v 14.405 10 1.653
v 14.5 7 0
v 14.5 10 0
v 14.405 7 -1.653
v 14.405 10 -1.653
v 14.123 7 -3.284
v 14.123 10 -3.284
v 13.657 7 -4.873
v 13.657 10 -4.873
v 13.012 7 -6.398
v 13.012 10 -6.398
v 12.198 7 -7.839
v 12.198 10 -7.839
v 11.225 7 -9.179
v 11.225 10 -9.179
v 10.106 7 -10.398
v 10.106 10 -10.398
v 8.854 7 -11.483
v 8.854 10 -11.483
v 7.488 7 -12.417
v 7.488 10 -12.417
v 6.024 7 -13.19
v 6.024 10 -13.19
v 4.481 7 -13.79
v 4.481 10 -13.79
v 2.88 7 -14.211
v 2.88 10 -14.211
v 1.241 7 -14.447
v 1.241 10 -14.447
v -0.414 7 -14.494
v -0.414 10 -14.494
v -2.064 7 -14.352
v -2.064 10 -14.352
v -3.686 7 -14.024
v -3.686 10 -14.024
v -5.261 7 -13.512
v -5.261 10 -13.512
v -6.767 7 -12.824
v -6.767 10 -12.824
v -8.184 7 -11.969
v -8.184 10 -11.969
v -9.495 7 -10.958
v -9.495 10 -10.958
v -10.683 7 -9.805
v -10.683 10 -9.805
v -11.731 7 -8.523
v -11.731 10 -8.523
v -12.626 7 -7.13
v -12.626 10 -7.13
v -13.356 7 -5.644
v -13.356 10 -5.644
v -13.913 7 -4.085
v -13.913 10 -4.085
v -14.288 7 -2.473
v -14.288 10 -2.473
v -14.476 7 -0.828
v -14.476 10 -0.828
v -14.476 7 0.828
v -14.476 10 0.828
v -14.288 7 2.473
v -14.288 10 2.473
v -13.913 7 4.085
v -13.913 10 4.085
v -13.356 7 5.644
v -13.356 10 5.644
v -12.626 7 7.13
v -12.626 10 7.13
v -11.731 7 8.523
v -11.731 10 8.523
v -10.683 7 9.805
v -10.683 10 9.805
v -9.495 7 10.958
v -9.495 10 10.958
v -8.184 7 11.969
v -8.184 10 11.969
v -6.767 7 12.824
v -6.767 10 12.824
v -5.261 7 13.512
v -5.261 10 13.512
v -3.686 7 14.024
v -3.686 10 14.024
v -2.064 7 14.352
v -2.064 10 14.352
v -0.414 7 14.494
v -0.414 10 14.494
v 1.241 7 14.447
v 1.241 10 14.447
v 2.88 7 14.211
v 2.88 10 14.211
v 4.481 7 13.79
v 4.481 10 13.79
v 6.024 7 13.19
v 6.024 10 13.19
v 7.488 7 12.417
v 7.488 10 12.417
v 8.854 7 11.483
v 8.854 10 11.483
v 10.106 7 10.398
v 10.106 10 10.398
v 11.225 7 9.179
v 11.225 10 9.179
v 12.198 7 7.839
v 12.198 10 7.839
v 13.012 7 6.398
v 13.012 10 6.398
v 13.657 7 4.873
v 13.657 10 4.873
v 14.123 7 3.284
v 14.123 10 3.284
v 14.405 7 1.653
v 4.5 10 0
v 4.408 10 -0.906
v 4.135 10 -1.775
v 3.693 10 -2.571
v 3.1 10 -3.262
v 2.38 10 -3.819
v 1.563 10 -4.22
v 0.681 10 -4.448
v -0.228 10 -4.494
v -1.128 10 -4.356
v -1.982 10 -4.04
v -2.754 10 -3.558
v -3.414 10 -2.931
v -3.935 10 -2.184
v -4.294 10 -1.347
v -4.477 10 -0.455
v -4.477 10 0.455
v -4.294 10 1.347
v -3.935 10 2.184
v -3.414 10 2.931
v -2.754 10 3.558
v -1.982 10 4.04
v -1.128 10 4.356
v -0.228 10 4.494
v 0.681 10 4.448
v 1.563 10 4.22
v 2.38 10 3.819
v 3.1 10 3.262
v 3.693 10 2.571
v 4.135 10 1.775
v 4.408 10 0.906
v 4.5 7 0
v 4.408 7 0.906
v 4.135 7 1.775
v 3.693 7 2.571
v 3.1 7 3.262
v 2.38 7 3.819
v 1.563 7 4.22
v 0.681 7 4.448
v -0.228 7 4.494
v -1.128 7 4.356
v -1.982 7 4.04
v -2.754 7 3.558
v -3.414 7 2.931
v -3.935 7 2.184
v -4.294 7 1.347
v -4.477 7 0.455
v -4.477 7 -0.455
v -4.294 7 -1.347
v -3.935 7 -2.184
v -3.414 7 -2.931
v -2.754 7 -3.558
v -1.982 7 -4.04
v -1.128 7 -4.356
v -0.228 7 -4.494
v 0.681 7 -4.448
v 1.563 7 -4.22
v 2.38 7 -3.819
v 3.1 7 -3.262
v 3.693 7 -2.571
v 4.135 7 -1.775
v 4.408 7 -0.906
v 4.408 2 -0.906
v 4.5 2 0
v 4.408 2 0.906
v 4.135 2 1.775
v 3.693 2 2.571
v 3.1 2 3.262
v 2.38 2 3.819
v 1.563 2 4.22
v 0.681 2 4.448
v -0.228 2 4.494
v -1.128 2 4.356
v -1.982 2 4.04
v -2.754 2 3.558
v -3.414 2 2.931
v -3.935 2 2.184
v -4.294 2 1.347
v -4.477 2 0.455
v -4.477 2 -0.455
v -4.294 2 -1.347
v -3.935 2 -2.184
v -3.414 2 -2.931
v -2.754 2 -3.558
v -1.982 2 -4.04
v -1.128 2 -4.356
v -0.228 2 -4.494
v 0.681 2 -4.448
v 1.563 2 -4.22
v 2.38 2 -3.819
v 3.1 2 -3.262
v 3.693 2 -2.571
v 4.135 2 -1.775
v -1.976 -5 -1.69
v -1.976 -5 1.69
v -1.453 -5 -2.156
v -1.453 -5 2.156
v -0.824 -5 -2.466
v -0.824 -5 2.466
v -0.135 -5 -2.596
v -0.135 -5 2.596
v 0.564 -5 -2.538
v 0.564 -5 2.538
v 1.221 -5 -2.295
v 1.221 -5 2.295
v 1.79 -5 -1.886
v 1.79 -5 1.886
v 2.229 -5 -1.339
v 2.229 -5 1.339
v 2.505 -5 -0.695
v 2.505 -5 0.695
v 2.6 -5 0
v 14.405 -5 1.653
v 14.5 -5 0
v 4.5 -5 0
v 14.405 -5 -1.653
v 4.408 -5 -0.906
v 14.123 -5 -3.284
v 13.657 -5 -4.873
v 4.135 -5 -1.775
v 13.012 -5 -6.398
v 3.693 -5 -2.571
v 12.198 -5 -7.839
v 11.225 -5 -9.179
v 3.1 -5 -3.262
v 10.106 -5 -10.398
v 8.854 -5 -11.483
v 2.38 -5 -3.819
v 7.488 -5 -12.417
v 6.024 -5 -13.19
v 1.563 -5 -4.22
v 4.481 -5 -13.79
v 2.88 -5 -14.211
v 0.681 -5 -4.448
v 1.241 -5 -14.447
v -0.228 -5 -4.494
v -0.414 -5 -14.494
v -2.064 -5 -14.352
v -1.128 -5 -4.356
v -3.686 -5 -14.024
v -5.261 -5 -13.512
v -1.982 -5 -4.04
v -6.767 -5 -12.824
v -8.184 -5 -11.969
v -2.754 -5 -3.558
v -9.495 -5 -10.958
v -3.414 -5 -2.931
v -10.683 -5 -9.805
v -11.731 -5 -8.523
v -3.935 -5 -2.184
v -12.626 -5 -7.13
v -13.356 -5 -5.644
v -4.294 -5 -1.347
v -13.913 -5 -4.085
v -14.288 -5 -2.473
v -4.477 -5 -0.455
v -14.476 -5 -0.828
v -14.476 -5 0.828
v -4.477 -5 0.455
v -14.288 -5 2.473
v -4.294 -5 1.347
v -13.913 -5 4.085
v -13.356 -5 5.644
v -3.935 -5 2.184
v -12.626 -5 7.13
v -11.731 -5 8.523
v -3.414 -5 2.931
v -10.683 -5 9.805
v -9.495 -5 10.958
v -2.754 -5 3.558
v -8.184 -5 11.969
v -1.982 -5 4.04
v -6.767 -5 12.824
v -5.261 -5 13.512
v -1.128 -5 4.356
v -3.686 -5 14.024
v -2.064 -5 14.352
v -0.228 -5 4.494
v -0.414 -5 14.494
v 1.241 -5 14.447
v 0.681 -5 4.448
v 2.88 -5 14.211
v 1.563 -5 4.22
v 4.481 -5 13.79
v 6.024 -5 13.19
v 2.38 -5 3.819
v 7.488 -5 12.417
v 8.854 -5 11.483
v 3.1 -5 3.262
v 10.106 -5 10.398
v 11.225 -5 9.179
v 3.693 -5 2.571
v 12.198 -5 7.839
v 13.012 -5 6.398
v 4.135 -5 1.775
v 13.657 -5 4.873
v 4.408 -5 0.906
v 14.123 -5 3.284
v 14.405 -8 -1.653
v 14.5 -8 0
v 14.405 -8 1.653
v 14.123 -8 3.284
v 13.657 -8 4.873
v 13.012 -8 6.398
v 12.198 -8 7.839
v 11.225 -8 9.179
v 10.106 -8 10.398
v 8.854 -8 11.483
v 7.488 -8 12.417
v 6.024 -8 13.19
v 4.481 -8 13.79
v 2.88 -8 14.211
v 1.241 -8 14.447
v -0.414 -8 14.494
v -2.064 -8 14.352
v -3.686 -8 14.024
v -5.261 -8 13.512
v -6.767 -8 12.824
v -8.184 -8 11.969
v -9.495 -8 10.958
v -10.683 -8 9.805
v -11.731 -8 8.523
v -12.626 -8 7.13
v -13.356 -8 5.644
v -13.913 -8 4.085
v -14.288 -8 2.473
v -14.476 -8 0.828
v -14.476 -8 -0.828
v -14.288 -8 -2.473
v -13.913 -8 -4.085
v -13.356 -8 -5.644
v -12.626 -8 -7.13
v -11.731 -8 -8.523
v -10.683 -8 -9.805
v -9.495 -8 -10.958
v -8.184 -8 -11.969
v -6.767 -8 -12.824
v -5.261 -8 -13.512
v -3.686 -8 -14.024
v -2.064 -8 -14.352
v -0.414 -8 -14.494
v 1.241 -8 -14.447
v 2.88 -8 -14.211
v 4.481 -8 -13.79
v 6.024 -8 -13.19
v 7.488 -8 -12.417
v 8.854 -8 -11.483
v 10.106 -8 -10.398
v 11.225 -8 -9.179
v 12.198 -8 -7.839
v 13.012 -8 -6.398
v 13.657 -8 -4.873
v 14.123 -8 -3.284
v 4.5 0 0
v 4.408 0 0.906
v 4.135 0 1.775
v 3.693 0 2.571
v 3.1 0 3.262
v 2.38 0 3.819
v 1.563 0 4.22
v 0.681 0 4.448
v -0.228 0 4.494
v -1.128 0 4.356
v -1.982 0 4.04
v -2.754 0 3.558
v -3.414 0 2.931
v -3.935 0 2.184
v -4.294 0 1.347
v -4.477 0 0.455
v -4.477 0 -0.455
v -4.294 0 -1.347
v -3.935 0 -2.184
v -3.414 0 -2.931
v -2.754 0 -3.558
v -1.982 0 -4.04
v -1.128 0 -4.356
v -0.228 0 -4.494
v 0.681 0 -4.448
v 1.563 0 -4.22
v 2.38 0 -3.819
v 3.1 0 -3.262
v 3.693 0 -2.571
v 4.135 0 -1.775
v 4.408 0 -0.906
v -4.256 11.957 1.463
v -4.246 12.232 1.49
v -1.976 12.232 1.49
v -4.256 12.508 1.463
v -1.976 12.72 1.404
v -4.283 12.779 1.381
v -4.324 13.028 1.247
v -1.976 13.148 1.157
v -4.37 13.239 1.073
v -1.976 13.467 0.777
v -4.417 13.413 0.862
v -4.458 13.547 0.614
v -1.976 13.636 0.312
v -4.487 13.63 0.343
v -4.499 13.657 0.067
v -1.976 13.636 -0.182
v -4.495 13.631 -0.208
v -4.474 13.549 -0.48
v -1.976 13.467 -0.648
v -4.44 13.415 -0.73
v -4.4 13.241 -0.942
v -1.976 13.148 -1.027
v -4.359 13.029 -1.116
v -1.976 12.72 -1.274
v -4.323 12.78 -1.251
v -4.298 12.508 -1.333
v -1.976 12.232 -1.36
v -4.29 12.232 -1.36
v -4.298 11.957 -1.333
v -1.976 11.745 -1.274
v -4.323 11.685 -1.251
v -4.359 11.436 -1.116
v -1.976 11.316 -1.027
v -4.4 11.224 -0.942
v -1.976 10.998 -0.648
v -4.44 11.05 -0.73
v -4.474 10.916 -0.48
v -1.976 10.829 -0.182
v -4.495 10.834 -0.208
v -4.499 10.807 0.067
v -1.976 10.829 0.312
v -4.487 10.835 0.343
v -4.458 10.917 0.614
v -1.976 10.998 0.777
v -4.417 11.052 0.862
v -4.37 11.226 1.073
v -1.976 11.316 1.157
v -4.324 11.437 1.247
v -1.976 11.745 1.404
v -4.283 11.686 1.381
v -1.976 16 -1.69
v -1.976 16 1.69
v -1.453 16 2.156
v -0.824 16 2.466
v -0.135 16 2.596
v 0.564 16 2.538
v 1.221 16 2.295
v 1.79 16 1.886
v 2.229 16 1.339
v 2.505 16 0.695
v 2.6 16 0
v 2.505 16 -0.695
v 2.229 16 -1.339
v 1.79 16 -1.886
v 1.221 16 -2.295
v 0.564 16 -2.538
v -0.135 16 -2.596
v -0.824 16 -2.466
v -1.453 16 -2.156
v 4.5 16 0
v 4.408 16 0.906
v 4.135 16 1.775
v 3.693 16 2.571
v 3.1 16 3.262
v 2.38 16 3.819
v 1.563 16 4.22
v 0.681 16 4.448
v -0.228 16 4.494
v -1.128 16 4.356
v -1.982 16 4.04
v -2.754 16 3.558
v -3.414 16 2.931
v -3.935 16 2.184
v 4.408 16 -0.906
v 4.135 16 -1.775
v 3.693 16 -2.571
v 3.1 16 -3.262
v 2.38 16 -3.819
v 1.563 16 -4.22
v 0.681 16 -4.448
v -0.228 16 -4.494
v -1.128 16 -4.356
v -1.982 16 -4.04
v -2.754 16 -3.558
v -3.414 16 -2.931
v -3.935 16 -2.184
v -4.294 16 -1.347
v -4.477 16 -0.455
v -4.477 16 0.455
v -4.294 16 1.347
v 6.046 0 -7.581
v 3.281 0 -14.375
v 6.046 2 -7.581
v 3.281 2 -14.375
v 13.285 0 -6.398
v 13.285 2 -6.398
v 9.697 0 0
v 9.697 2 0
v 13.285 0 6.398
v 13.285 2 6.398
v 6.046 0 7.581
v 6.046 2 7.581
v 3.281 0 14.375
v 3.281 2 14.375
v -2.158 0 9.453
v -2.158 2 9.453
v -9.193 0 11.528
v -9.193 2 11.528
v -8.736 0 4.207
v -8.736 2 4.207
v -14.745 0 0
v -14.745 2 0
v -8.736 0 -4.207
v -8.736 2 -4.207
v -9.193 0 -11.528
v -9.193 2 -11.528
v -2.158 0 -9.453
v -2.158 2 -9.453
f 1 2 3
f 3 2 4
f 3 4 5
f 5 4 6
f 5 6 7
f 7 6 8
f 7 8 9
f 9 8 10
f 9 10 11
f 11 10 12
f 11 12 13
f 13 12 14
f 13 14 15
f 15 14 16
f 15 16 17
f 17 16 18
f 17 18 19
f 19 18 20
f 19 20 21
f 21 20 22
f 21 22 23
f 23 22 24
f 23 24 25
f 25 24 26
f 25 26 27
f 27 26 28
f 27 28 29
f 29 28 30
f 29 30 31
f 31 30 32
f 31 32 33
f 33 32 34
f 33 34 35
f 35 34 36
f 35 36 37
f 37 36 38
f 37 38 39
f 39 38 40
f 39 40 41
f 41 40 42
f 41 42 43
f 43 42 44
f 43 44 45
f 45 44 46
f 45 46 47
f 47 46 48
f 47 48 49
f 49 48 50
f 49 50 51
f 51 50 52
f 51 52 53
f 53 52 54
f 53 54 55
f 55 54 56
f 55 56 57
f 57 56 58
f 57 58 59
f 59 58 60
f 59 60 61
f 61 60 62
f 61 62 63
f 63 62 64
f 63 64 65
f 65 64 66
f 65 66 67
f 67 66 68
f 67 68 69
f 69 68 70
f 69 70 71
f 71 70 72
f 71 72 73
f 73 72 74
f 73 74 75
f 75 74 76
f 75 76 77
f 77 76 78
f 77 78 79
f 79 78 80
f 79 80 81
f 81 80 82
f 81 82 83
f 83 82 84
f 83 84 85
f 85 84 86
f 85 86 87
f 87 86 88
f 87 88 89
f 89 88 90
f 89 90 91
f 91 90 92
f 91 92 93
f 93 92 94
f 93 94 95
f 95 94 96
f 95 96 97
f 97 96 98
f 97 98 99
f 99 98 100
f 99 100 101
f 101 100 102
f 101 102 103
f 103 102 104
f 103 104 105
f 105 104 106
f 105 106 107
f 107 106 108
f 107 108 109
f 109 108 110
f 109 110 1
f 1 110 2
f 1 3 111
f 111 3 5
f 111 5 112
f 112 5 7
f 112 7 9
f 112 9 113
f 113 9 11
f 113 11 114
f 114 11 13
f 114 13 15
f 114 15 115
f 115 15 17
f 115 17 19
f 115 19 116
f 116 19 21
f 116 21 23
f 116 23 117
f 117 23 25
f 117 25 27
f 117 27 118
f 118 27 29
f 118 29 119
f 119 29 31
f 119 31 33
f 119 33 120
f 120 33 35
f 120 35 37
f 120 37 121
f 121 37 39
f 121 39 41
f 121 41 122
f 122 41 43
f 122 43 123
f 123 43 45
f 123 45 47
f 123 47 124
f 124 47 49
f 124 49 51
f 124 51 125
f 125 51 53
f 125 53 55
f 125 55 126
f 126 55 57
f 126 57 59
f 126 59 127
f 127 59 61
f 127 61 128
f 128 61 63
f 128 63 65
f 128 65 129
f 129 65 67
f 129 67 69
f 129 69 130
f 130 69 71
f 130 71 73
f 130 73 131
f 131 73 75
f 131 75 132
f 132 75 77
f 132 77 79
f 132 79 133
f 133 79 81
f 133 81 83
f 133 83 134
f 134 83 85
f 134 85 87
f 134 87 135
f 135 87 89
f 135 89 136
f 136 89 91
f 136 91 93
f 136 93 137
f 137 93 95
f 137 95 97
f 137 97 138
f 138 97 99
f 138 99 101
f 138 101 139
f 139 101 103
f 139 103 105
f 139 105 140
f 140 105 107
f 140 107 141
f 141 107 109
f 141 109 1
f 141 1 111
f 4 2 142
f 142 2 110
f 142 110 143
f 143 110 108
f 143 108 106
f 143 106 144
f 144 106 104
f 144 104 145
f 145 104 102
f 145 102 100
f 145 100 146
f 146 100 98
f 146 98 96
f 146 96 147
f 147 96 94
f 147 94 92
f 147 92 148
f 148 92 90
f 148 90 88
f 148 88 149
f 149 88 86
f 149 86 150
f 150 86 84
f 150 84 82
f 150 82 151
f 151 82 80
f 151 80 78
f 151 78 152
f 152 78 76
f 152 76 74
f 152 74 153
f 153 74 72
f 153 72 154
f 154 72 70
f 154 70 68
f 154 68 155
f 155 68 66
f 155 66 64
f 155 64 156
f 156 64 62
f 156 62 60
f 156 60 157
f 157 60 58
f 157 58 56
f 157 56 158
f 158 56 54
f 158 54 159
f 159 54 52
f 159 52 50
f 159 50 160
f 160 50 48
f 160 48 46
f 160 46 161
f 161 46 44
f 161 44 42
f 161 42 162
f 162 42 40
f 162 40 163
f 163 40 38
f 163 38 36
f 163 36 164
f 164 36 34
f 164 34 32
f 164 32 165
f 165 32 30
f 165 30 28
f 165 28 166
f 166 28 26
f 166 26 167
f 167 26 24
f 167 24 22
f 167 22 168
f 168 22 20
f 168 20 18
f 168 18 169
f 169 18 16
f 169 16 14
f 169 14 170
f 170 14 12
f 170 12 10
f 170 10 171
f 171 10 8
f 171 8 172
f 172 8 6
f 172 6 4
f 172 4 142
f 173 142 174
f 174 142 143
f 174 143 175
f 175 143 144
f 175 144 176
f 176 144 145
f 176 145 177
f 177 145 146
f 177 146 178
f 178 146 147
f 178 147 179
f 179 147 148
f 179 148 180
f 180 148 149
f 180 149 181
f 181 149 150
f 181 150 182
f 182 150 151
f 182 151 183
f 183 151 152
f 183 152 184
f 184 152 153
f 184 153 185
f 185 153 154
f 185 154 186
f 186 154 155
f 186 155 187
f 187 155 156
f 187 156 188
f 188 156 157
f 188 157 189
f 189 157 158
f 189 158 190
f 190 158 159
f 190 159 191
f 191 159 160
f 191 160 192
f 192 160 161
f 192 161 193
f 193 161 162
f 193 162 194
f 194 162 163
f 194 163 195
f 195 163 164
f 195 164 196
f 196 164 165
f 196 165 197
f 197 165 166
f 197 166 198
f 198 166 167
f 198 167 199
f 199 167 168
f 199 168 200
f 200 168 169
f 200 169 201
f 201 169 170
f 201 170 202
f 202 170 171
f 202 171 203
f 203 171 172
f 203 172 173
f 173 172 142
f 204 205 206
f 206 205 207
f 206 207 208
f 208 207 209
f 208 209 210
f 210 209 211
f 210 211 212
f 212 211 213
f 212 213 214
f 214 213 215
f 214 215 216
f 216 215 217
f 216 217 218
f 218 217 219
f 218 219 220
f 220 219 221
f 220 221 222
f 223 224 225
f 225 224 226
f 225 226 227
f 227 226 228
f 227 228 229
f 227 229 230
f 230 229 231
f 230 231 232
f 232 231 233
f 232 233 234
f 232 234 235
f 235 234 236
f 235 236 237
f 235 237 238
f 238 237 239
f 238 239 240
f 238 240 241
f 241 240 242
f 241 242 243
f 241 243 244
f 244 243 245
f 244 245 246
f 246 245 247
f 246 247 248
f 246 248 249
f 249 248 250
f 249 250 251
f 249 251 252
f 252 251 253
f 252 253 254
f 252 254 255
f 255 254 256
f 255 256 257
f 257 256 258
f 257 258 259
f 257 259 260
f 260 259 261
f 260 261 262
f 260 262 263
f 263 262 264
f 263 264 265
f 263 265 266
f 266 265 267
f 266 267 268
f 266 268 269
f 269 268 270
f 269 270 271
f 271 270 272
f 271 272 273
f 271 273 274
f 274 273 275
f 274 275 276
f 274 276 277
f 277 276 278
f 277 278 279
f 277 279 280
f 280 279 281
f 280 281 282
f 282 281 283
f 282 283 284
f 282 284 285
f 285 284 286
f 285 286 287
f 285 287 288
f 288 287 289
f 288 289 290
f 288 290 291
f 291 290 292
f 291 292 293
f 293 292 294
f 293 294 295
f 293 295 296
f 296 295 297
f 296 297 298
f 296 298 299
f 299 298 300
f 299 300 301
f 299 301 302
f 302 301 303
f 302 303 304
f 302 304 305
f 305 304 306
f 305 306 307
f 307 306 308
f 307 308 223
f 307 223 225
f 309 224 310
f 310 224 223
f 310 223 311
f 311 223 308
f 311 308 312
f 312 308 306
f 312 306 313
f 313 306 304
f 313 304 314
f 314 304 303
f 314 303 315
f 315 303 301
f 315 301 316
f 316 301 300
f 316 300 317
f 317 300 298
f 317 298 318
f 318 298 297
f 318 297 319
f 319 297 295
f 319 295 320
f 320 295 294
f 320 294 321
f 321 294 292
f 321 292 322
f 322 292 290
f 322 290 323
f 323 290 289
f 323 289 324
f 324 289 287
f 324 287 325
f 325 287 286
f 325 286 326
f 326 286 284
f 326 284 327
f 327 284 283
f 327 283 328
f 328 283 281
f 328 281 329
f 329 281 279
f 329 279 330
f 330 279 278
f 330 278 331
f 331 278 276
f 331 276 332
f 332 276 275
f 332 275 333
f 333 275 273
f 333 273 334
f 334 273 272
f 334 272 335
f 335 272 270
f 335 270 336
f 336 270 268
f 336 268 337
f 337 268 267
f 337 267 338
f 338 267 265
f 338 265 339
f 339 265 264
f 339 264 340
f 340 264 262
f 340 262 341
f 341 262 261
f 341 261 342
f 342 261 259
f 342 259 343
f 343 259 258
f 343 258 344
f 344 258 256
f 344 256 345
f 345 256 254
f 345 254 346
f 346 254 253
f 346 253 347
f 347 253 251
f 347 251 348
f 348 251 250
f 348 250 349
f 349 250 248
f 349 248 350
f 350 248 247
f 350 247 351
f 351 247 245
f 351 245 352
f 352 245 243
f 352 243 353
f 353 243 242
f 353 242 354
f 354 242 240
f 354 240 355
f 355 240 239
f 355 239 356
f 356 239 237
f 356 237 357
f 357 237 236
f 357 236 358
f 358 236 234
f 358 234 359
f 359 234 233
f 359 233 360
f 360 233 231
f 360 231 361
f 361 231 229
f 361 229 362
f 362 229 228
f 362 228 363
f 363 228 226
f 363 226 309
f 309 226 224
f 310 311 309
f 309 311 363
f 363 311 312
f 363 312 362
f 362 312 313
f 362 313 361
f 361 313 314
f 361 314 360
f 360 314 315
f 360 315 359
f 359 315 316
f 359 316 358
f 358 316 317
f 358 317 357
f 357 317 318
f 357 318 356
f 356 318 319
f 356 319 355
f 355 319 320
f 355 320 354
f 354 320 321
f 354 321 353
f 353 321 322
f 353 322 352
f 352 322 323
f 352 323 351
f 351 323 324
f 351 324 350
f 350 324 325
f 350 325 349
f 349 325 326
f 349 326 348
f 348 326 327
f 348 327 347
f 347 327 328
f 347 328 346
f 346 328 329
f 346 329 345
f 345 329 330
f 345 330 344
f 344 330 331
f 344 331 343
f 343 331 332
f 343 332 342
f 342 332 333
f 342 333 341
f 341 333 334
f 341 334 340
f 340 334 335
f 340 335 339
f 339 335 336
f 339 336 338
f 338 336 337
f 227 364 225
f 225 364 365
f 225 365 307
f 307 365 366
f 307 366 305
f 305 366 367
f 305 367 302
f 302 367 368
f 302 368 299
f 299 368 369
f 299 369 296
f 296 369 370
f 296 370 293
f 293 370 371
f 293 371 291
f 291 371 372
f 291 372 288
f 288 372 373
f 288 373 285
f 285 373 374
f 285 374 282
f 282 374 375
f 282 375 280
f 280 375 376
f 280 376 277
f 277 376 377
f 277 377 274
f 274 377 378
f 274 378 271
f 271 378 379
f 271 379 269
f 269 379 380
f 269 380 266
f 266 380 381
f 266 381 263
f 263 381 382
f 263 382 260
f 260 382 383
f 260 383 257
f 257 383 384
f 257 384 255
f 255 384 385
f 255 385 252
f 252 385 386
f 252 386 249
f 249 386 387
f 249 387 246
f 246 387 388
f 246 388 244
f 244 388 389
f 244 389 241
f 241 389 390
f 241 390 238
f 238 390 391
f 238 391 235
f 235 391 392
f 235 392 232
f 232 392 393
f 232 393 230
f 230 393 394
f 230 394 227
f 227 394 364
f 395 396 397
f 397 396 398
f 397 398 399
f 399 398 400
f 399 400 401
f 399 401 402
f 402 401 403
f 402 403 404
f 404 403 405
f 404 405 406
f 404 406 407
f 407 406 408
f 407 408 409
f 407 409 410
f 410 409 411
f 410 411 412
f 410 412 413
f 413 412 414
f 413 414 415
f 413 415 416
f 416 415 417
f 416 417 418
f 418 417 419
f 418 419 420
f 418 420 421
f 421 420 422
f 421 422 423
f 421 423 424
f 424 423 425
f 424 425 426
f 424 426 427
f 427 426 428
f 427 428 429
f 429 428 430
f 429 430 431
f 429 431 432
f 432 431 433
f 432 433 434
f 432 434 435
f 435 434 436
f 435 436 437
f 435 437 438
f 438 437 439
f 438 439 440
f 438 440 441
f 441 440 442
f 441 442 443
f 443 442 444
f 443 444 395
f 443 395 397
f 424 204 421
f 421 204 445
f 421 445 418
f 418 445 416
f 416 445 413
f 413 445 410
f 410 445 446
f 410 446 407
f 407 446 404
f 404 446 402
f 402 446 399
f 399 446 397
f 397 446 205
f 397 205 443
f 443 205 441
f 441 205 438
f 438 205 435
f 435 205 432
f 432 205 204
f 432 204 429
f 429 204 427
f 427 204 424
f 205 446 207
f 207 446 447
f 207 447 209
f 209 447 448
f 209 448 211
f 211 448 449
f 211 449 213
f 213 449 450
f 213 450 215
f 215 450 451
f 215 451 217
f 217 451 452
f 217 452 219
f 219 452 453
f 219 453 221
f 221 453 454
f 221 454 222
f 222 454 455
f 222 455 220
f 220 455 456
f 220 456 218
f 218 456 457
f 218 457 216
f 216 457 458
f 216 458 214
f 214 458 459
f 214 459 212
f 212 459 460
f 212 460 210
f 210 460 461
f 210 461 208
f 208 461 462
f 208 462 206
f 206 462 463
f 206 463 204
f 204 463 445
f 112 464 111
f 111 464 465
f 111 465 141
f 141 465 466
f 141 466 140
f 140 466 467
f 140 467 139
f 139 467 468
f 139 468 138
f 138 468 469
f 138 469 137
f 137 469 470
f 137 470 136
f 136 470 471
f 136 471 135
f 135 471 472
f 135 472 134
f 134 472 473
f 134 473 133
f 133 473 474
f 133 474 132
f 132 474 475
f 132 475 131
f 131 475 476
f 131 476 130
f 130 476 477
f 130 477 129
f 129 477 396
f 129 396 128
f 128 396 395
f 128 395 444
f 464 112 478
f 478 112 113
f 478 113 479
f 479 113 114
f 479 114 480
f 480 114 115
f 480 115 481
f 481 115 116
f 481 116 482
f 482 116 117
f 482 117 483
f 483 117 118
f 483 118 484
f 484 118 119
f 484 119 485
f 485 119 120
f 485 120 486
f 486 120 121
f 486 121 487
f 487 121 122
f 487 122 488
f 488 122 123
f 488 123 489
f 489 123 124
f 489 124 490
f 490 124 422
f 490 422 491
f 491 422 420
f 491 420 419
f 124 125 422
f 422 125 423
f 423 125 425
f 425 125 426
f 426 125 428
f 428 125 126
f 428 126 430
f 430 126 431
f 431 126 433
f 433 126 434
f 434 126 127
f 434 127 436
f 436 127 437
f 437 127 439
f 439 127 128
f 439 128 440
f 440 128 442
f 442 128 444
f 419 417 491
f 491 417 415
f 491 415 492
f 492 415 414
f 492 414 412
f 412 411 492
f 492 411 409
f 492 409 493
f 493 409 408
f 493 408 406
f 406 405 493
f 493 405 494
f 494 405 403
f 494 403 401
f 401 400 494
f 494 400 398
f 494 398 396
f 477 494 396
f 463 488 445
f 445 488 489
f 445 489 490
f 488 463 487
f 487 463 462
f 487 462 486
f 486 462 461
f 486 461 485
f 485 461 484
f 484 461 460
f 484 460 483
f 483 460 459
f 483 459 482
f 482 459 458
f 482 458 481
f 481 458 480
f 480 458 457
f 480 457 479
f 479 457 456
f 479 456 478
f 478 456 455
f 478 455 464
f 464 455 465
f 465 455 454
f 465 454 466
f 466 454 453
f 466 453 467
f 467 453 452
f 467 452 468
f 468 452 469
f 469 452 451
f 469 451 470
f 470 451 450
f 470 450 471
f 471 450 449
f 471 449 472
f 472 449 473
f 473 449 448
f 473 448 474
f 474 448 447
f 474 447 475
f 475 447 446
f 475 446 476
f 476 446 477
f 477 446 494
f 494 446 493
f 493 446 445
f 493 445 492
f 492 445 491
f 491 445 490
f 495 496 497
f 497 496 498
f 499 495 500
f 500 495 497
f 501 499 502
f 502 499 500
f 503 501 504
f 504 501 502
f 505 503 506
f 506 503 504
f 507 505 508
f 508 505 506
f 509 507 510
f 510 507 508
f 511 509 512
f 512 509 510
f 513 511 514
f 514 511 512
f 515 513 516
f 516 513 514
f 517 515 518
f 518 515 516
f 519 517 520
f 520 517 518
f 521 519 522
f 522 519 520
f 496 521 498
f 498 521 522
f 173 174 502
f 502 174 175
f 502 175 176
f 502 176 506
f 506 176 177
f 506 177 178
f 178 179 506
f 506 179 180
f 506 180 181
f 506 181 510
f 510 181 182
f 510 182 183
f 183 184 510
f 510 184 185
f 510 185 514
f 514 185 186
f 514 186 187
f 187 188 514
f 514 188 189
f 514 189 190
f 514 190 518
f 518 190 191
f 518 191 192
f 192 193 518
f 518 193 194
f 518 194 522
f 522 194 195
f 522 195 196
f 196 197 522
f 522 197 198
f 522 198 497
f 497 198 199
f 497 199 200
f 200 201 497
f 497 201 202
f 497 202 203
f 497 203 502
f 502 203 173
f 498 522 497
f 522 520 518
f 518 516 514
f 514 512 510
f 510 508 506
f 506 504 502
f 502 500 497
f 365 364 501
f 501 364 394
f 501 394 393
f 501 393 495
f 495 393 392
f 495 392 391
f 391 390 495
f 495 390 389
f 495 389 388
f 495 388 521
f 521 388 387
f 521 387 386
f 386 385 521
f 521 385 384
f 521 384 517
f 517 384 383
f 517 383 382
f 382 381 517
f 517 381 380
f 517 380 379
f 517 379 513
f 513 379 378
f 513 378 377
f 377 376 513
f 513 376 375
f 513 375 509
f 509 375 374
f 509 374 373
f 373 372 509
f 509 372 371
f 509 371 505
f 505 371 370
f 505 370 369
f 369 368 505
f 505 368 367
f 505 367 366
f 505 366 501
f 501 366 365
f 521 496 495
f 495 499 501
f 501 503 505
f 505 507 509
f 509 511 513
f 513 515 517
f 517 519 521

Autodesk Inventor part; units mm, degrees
ref_plane "YZ Plane" through (0, 0, 0) normal (1, 0, 0) x (0, 1, 0)
ref_plane "XZ Plane" through (0, 0, 0) normal (0, 1, 0) x (-1, 0, 0)
sketch "Sketch1" plane through (0, 0, 0) normal (0, 1, 0) x (-1, 0, 0)
  line L0 (7.3724, 5.1622) -> (14.7447, 0)
  line L1 (14.7447, 0) -> (7.3724, -5.1622)
  line L2 (0.5606, 8.9825) -> (9.1932, 11.5279)
  line L3 (9.1932, 11.5279) -> (8.6326, 2.5454)
  line L4 (-6.6733, 6.0388) -> (-3.281, 14.3751)
  line L5 (-3.281, 14.3751) -> (3.3923, 8.3362)
  line L6 (-8.8821, -1.4522) -> (-13.2845, 6.3975)
  line L7 (-13.2845, 6.3975) -> (-4.4025, 7.8497)
  line L8 (-4.4025, -7.8497) -> (-13.2845, -6.3975)
  line L9 (-13.2845, -6.3975) -> (-8.8821, 1.4522)
  line L10 (3.3923, -8.3362) -> (-3.281, -14.3751)
  line L11 (-3.281, -14.3751) -> (-6.6733, -6.0388)
  line L12 (8.6326, -2.5454) -> (9.1932, -11.5279)
  line L13 (9.1932, -11.5279) -> (0.5606, -8.9825)
  arc A0 (-6.6733, -6.0388) -> (-5.3444, -7.2414) centre (0, 0) ccw
  arc A1 (7.3724, -5.1622) -> (7.957, -4.2054) centre (0, 0) ccw
  arc A2 (8.2491, -3.599) -> (8.6326, -2.5454) centre (0, 0) ccw
  point P0 (-6.0457, -7.5811)
  point P1 (2.1577, -9.4534)
  point P2 (8.7363, -4.2072)
  point P3 (8.7363, 4.2072)
  point P4 (2.1577, 9.4534)
  point P5 (-6.0457, 7.5811)
  point P6 (-9.6965, 0)
  dimension "d5" = 360
extrude "Extrusion1" add sketch "Sketch1" along normal blind 2
sketch "Sketch2" plane through (0, 2, 0) normal (0, 1, 0) x (1, 0, 0)
  circle A0 centre (0, 0) radius 4.5
  dimension "d9" = 9
extrude "Extrusion2" add sketch "Sketch2" along normal blind 14
sketch "Sketch3" plane through (0, 16, 0) normal (0, 1, 0) x (1, 0, 0)
  arc A0 (-1.976, -1.6898) -> (-1.976, 1.6898) centre (0, 0) ccw
  line L0 (-1.976, -1.6898) -> (-1.976, 1.6898)
  line L1 (2.6, 0) -> (2.6, 18.1631)
  dimension "d19" = 2.6
extrude "Extrusion3" cut sketch "Sketch3" against normal through all
sketch "Sketch4" plane through (-1.976, 16, 1.6898) normal (1, 0, 0) x (0, 0, -1)
  circle A0 centre (1.6248, -3.7675) radius 1.425
  point P0 (1.6898, -16)
  dimension "d16" = 2.85
extrude "Extrusion4" cut sketch "Sketch4" against normal blind 10
sketch "Sketch5" plane through (0, 0, 0) normal (0, -1, 0) x (1, 0, 0)
  circle A0 centre (0, 0) radius 4.5
  line L0 (-1.976, -1.6898) -> (-1.976, 1.6898) projected
  line L1 (-1.976, 1.6898) -> (-1.976, -1.6898)
  arc A1 (-1.976, -1.6898) -> (-1.976, 1.6898) centre (0, 0) ccw
  dimension "d20" = 9
extrude "Extrusion5" add sketch "Sketch5" along normal blind 5
sketch "Sketch6" plane through (0, -5, 0) normal (0, -1, 0) x (1, 0, 0)
  arc A0 (-1.976, -1.6898) -> (-1.976, 1.6898) centre (0, 0) ccw projected
  circle A1 centre (0, 0) radius 14.5
  point P0 (0, 0)
  dimension "d23" = 29
extrude "Extrusion6" add sketch "Sketch6" along normal blind 3
ref_plane "Work Plane1" through (0, 7, 0) normal (0, 1, 0) x (1, 0, 0)
sketch "Sketch7" plane through (0, 7, 0) normal (0, 1, 0) x (1, 0, 0)
  circle A0 centre (0, 0) radius 4.5
  arc A1 (-1.976, -1.6898) -> (-1.976, 1.6898) centre (0, 0) ccw projected
  circle A2 centre (0, 0) radius 14.5
extrude "Extrusion7" add sketch "Sketch7" along normal blind 3
properties part number "gear"
